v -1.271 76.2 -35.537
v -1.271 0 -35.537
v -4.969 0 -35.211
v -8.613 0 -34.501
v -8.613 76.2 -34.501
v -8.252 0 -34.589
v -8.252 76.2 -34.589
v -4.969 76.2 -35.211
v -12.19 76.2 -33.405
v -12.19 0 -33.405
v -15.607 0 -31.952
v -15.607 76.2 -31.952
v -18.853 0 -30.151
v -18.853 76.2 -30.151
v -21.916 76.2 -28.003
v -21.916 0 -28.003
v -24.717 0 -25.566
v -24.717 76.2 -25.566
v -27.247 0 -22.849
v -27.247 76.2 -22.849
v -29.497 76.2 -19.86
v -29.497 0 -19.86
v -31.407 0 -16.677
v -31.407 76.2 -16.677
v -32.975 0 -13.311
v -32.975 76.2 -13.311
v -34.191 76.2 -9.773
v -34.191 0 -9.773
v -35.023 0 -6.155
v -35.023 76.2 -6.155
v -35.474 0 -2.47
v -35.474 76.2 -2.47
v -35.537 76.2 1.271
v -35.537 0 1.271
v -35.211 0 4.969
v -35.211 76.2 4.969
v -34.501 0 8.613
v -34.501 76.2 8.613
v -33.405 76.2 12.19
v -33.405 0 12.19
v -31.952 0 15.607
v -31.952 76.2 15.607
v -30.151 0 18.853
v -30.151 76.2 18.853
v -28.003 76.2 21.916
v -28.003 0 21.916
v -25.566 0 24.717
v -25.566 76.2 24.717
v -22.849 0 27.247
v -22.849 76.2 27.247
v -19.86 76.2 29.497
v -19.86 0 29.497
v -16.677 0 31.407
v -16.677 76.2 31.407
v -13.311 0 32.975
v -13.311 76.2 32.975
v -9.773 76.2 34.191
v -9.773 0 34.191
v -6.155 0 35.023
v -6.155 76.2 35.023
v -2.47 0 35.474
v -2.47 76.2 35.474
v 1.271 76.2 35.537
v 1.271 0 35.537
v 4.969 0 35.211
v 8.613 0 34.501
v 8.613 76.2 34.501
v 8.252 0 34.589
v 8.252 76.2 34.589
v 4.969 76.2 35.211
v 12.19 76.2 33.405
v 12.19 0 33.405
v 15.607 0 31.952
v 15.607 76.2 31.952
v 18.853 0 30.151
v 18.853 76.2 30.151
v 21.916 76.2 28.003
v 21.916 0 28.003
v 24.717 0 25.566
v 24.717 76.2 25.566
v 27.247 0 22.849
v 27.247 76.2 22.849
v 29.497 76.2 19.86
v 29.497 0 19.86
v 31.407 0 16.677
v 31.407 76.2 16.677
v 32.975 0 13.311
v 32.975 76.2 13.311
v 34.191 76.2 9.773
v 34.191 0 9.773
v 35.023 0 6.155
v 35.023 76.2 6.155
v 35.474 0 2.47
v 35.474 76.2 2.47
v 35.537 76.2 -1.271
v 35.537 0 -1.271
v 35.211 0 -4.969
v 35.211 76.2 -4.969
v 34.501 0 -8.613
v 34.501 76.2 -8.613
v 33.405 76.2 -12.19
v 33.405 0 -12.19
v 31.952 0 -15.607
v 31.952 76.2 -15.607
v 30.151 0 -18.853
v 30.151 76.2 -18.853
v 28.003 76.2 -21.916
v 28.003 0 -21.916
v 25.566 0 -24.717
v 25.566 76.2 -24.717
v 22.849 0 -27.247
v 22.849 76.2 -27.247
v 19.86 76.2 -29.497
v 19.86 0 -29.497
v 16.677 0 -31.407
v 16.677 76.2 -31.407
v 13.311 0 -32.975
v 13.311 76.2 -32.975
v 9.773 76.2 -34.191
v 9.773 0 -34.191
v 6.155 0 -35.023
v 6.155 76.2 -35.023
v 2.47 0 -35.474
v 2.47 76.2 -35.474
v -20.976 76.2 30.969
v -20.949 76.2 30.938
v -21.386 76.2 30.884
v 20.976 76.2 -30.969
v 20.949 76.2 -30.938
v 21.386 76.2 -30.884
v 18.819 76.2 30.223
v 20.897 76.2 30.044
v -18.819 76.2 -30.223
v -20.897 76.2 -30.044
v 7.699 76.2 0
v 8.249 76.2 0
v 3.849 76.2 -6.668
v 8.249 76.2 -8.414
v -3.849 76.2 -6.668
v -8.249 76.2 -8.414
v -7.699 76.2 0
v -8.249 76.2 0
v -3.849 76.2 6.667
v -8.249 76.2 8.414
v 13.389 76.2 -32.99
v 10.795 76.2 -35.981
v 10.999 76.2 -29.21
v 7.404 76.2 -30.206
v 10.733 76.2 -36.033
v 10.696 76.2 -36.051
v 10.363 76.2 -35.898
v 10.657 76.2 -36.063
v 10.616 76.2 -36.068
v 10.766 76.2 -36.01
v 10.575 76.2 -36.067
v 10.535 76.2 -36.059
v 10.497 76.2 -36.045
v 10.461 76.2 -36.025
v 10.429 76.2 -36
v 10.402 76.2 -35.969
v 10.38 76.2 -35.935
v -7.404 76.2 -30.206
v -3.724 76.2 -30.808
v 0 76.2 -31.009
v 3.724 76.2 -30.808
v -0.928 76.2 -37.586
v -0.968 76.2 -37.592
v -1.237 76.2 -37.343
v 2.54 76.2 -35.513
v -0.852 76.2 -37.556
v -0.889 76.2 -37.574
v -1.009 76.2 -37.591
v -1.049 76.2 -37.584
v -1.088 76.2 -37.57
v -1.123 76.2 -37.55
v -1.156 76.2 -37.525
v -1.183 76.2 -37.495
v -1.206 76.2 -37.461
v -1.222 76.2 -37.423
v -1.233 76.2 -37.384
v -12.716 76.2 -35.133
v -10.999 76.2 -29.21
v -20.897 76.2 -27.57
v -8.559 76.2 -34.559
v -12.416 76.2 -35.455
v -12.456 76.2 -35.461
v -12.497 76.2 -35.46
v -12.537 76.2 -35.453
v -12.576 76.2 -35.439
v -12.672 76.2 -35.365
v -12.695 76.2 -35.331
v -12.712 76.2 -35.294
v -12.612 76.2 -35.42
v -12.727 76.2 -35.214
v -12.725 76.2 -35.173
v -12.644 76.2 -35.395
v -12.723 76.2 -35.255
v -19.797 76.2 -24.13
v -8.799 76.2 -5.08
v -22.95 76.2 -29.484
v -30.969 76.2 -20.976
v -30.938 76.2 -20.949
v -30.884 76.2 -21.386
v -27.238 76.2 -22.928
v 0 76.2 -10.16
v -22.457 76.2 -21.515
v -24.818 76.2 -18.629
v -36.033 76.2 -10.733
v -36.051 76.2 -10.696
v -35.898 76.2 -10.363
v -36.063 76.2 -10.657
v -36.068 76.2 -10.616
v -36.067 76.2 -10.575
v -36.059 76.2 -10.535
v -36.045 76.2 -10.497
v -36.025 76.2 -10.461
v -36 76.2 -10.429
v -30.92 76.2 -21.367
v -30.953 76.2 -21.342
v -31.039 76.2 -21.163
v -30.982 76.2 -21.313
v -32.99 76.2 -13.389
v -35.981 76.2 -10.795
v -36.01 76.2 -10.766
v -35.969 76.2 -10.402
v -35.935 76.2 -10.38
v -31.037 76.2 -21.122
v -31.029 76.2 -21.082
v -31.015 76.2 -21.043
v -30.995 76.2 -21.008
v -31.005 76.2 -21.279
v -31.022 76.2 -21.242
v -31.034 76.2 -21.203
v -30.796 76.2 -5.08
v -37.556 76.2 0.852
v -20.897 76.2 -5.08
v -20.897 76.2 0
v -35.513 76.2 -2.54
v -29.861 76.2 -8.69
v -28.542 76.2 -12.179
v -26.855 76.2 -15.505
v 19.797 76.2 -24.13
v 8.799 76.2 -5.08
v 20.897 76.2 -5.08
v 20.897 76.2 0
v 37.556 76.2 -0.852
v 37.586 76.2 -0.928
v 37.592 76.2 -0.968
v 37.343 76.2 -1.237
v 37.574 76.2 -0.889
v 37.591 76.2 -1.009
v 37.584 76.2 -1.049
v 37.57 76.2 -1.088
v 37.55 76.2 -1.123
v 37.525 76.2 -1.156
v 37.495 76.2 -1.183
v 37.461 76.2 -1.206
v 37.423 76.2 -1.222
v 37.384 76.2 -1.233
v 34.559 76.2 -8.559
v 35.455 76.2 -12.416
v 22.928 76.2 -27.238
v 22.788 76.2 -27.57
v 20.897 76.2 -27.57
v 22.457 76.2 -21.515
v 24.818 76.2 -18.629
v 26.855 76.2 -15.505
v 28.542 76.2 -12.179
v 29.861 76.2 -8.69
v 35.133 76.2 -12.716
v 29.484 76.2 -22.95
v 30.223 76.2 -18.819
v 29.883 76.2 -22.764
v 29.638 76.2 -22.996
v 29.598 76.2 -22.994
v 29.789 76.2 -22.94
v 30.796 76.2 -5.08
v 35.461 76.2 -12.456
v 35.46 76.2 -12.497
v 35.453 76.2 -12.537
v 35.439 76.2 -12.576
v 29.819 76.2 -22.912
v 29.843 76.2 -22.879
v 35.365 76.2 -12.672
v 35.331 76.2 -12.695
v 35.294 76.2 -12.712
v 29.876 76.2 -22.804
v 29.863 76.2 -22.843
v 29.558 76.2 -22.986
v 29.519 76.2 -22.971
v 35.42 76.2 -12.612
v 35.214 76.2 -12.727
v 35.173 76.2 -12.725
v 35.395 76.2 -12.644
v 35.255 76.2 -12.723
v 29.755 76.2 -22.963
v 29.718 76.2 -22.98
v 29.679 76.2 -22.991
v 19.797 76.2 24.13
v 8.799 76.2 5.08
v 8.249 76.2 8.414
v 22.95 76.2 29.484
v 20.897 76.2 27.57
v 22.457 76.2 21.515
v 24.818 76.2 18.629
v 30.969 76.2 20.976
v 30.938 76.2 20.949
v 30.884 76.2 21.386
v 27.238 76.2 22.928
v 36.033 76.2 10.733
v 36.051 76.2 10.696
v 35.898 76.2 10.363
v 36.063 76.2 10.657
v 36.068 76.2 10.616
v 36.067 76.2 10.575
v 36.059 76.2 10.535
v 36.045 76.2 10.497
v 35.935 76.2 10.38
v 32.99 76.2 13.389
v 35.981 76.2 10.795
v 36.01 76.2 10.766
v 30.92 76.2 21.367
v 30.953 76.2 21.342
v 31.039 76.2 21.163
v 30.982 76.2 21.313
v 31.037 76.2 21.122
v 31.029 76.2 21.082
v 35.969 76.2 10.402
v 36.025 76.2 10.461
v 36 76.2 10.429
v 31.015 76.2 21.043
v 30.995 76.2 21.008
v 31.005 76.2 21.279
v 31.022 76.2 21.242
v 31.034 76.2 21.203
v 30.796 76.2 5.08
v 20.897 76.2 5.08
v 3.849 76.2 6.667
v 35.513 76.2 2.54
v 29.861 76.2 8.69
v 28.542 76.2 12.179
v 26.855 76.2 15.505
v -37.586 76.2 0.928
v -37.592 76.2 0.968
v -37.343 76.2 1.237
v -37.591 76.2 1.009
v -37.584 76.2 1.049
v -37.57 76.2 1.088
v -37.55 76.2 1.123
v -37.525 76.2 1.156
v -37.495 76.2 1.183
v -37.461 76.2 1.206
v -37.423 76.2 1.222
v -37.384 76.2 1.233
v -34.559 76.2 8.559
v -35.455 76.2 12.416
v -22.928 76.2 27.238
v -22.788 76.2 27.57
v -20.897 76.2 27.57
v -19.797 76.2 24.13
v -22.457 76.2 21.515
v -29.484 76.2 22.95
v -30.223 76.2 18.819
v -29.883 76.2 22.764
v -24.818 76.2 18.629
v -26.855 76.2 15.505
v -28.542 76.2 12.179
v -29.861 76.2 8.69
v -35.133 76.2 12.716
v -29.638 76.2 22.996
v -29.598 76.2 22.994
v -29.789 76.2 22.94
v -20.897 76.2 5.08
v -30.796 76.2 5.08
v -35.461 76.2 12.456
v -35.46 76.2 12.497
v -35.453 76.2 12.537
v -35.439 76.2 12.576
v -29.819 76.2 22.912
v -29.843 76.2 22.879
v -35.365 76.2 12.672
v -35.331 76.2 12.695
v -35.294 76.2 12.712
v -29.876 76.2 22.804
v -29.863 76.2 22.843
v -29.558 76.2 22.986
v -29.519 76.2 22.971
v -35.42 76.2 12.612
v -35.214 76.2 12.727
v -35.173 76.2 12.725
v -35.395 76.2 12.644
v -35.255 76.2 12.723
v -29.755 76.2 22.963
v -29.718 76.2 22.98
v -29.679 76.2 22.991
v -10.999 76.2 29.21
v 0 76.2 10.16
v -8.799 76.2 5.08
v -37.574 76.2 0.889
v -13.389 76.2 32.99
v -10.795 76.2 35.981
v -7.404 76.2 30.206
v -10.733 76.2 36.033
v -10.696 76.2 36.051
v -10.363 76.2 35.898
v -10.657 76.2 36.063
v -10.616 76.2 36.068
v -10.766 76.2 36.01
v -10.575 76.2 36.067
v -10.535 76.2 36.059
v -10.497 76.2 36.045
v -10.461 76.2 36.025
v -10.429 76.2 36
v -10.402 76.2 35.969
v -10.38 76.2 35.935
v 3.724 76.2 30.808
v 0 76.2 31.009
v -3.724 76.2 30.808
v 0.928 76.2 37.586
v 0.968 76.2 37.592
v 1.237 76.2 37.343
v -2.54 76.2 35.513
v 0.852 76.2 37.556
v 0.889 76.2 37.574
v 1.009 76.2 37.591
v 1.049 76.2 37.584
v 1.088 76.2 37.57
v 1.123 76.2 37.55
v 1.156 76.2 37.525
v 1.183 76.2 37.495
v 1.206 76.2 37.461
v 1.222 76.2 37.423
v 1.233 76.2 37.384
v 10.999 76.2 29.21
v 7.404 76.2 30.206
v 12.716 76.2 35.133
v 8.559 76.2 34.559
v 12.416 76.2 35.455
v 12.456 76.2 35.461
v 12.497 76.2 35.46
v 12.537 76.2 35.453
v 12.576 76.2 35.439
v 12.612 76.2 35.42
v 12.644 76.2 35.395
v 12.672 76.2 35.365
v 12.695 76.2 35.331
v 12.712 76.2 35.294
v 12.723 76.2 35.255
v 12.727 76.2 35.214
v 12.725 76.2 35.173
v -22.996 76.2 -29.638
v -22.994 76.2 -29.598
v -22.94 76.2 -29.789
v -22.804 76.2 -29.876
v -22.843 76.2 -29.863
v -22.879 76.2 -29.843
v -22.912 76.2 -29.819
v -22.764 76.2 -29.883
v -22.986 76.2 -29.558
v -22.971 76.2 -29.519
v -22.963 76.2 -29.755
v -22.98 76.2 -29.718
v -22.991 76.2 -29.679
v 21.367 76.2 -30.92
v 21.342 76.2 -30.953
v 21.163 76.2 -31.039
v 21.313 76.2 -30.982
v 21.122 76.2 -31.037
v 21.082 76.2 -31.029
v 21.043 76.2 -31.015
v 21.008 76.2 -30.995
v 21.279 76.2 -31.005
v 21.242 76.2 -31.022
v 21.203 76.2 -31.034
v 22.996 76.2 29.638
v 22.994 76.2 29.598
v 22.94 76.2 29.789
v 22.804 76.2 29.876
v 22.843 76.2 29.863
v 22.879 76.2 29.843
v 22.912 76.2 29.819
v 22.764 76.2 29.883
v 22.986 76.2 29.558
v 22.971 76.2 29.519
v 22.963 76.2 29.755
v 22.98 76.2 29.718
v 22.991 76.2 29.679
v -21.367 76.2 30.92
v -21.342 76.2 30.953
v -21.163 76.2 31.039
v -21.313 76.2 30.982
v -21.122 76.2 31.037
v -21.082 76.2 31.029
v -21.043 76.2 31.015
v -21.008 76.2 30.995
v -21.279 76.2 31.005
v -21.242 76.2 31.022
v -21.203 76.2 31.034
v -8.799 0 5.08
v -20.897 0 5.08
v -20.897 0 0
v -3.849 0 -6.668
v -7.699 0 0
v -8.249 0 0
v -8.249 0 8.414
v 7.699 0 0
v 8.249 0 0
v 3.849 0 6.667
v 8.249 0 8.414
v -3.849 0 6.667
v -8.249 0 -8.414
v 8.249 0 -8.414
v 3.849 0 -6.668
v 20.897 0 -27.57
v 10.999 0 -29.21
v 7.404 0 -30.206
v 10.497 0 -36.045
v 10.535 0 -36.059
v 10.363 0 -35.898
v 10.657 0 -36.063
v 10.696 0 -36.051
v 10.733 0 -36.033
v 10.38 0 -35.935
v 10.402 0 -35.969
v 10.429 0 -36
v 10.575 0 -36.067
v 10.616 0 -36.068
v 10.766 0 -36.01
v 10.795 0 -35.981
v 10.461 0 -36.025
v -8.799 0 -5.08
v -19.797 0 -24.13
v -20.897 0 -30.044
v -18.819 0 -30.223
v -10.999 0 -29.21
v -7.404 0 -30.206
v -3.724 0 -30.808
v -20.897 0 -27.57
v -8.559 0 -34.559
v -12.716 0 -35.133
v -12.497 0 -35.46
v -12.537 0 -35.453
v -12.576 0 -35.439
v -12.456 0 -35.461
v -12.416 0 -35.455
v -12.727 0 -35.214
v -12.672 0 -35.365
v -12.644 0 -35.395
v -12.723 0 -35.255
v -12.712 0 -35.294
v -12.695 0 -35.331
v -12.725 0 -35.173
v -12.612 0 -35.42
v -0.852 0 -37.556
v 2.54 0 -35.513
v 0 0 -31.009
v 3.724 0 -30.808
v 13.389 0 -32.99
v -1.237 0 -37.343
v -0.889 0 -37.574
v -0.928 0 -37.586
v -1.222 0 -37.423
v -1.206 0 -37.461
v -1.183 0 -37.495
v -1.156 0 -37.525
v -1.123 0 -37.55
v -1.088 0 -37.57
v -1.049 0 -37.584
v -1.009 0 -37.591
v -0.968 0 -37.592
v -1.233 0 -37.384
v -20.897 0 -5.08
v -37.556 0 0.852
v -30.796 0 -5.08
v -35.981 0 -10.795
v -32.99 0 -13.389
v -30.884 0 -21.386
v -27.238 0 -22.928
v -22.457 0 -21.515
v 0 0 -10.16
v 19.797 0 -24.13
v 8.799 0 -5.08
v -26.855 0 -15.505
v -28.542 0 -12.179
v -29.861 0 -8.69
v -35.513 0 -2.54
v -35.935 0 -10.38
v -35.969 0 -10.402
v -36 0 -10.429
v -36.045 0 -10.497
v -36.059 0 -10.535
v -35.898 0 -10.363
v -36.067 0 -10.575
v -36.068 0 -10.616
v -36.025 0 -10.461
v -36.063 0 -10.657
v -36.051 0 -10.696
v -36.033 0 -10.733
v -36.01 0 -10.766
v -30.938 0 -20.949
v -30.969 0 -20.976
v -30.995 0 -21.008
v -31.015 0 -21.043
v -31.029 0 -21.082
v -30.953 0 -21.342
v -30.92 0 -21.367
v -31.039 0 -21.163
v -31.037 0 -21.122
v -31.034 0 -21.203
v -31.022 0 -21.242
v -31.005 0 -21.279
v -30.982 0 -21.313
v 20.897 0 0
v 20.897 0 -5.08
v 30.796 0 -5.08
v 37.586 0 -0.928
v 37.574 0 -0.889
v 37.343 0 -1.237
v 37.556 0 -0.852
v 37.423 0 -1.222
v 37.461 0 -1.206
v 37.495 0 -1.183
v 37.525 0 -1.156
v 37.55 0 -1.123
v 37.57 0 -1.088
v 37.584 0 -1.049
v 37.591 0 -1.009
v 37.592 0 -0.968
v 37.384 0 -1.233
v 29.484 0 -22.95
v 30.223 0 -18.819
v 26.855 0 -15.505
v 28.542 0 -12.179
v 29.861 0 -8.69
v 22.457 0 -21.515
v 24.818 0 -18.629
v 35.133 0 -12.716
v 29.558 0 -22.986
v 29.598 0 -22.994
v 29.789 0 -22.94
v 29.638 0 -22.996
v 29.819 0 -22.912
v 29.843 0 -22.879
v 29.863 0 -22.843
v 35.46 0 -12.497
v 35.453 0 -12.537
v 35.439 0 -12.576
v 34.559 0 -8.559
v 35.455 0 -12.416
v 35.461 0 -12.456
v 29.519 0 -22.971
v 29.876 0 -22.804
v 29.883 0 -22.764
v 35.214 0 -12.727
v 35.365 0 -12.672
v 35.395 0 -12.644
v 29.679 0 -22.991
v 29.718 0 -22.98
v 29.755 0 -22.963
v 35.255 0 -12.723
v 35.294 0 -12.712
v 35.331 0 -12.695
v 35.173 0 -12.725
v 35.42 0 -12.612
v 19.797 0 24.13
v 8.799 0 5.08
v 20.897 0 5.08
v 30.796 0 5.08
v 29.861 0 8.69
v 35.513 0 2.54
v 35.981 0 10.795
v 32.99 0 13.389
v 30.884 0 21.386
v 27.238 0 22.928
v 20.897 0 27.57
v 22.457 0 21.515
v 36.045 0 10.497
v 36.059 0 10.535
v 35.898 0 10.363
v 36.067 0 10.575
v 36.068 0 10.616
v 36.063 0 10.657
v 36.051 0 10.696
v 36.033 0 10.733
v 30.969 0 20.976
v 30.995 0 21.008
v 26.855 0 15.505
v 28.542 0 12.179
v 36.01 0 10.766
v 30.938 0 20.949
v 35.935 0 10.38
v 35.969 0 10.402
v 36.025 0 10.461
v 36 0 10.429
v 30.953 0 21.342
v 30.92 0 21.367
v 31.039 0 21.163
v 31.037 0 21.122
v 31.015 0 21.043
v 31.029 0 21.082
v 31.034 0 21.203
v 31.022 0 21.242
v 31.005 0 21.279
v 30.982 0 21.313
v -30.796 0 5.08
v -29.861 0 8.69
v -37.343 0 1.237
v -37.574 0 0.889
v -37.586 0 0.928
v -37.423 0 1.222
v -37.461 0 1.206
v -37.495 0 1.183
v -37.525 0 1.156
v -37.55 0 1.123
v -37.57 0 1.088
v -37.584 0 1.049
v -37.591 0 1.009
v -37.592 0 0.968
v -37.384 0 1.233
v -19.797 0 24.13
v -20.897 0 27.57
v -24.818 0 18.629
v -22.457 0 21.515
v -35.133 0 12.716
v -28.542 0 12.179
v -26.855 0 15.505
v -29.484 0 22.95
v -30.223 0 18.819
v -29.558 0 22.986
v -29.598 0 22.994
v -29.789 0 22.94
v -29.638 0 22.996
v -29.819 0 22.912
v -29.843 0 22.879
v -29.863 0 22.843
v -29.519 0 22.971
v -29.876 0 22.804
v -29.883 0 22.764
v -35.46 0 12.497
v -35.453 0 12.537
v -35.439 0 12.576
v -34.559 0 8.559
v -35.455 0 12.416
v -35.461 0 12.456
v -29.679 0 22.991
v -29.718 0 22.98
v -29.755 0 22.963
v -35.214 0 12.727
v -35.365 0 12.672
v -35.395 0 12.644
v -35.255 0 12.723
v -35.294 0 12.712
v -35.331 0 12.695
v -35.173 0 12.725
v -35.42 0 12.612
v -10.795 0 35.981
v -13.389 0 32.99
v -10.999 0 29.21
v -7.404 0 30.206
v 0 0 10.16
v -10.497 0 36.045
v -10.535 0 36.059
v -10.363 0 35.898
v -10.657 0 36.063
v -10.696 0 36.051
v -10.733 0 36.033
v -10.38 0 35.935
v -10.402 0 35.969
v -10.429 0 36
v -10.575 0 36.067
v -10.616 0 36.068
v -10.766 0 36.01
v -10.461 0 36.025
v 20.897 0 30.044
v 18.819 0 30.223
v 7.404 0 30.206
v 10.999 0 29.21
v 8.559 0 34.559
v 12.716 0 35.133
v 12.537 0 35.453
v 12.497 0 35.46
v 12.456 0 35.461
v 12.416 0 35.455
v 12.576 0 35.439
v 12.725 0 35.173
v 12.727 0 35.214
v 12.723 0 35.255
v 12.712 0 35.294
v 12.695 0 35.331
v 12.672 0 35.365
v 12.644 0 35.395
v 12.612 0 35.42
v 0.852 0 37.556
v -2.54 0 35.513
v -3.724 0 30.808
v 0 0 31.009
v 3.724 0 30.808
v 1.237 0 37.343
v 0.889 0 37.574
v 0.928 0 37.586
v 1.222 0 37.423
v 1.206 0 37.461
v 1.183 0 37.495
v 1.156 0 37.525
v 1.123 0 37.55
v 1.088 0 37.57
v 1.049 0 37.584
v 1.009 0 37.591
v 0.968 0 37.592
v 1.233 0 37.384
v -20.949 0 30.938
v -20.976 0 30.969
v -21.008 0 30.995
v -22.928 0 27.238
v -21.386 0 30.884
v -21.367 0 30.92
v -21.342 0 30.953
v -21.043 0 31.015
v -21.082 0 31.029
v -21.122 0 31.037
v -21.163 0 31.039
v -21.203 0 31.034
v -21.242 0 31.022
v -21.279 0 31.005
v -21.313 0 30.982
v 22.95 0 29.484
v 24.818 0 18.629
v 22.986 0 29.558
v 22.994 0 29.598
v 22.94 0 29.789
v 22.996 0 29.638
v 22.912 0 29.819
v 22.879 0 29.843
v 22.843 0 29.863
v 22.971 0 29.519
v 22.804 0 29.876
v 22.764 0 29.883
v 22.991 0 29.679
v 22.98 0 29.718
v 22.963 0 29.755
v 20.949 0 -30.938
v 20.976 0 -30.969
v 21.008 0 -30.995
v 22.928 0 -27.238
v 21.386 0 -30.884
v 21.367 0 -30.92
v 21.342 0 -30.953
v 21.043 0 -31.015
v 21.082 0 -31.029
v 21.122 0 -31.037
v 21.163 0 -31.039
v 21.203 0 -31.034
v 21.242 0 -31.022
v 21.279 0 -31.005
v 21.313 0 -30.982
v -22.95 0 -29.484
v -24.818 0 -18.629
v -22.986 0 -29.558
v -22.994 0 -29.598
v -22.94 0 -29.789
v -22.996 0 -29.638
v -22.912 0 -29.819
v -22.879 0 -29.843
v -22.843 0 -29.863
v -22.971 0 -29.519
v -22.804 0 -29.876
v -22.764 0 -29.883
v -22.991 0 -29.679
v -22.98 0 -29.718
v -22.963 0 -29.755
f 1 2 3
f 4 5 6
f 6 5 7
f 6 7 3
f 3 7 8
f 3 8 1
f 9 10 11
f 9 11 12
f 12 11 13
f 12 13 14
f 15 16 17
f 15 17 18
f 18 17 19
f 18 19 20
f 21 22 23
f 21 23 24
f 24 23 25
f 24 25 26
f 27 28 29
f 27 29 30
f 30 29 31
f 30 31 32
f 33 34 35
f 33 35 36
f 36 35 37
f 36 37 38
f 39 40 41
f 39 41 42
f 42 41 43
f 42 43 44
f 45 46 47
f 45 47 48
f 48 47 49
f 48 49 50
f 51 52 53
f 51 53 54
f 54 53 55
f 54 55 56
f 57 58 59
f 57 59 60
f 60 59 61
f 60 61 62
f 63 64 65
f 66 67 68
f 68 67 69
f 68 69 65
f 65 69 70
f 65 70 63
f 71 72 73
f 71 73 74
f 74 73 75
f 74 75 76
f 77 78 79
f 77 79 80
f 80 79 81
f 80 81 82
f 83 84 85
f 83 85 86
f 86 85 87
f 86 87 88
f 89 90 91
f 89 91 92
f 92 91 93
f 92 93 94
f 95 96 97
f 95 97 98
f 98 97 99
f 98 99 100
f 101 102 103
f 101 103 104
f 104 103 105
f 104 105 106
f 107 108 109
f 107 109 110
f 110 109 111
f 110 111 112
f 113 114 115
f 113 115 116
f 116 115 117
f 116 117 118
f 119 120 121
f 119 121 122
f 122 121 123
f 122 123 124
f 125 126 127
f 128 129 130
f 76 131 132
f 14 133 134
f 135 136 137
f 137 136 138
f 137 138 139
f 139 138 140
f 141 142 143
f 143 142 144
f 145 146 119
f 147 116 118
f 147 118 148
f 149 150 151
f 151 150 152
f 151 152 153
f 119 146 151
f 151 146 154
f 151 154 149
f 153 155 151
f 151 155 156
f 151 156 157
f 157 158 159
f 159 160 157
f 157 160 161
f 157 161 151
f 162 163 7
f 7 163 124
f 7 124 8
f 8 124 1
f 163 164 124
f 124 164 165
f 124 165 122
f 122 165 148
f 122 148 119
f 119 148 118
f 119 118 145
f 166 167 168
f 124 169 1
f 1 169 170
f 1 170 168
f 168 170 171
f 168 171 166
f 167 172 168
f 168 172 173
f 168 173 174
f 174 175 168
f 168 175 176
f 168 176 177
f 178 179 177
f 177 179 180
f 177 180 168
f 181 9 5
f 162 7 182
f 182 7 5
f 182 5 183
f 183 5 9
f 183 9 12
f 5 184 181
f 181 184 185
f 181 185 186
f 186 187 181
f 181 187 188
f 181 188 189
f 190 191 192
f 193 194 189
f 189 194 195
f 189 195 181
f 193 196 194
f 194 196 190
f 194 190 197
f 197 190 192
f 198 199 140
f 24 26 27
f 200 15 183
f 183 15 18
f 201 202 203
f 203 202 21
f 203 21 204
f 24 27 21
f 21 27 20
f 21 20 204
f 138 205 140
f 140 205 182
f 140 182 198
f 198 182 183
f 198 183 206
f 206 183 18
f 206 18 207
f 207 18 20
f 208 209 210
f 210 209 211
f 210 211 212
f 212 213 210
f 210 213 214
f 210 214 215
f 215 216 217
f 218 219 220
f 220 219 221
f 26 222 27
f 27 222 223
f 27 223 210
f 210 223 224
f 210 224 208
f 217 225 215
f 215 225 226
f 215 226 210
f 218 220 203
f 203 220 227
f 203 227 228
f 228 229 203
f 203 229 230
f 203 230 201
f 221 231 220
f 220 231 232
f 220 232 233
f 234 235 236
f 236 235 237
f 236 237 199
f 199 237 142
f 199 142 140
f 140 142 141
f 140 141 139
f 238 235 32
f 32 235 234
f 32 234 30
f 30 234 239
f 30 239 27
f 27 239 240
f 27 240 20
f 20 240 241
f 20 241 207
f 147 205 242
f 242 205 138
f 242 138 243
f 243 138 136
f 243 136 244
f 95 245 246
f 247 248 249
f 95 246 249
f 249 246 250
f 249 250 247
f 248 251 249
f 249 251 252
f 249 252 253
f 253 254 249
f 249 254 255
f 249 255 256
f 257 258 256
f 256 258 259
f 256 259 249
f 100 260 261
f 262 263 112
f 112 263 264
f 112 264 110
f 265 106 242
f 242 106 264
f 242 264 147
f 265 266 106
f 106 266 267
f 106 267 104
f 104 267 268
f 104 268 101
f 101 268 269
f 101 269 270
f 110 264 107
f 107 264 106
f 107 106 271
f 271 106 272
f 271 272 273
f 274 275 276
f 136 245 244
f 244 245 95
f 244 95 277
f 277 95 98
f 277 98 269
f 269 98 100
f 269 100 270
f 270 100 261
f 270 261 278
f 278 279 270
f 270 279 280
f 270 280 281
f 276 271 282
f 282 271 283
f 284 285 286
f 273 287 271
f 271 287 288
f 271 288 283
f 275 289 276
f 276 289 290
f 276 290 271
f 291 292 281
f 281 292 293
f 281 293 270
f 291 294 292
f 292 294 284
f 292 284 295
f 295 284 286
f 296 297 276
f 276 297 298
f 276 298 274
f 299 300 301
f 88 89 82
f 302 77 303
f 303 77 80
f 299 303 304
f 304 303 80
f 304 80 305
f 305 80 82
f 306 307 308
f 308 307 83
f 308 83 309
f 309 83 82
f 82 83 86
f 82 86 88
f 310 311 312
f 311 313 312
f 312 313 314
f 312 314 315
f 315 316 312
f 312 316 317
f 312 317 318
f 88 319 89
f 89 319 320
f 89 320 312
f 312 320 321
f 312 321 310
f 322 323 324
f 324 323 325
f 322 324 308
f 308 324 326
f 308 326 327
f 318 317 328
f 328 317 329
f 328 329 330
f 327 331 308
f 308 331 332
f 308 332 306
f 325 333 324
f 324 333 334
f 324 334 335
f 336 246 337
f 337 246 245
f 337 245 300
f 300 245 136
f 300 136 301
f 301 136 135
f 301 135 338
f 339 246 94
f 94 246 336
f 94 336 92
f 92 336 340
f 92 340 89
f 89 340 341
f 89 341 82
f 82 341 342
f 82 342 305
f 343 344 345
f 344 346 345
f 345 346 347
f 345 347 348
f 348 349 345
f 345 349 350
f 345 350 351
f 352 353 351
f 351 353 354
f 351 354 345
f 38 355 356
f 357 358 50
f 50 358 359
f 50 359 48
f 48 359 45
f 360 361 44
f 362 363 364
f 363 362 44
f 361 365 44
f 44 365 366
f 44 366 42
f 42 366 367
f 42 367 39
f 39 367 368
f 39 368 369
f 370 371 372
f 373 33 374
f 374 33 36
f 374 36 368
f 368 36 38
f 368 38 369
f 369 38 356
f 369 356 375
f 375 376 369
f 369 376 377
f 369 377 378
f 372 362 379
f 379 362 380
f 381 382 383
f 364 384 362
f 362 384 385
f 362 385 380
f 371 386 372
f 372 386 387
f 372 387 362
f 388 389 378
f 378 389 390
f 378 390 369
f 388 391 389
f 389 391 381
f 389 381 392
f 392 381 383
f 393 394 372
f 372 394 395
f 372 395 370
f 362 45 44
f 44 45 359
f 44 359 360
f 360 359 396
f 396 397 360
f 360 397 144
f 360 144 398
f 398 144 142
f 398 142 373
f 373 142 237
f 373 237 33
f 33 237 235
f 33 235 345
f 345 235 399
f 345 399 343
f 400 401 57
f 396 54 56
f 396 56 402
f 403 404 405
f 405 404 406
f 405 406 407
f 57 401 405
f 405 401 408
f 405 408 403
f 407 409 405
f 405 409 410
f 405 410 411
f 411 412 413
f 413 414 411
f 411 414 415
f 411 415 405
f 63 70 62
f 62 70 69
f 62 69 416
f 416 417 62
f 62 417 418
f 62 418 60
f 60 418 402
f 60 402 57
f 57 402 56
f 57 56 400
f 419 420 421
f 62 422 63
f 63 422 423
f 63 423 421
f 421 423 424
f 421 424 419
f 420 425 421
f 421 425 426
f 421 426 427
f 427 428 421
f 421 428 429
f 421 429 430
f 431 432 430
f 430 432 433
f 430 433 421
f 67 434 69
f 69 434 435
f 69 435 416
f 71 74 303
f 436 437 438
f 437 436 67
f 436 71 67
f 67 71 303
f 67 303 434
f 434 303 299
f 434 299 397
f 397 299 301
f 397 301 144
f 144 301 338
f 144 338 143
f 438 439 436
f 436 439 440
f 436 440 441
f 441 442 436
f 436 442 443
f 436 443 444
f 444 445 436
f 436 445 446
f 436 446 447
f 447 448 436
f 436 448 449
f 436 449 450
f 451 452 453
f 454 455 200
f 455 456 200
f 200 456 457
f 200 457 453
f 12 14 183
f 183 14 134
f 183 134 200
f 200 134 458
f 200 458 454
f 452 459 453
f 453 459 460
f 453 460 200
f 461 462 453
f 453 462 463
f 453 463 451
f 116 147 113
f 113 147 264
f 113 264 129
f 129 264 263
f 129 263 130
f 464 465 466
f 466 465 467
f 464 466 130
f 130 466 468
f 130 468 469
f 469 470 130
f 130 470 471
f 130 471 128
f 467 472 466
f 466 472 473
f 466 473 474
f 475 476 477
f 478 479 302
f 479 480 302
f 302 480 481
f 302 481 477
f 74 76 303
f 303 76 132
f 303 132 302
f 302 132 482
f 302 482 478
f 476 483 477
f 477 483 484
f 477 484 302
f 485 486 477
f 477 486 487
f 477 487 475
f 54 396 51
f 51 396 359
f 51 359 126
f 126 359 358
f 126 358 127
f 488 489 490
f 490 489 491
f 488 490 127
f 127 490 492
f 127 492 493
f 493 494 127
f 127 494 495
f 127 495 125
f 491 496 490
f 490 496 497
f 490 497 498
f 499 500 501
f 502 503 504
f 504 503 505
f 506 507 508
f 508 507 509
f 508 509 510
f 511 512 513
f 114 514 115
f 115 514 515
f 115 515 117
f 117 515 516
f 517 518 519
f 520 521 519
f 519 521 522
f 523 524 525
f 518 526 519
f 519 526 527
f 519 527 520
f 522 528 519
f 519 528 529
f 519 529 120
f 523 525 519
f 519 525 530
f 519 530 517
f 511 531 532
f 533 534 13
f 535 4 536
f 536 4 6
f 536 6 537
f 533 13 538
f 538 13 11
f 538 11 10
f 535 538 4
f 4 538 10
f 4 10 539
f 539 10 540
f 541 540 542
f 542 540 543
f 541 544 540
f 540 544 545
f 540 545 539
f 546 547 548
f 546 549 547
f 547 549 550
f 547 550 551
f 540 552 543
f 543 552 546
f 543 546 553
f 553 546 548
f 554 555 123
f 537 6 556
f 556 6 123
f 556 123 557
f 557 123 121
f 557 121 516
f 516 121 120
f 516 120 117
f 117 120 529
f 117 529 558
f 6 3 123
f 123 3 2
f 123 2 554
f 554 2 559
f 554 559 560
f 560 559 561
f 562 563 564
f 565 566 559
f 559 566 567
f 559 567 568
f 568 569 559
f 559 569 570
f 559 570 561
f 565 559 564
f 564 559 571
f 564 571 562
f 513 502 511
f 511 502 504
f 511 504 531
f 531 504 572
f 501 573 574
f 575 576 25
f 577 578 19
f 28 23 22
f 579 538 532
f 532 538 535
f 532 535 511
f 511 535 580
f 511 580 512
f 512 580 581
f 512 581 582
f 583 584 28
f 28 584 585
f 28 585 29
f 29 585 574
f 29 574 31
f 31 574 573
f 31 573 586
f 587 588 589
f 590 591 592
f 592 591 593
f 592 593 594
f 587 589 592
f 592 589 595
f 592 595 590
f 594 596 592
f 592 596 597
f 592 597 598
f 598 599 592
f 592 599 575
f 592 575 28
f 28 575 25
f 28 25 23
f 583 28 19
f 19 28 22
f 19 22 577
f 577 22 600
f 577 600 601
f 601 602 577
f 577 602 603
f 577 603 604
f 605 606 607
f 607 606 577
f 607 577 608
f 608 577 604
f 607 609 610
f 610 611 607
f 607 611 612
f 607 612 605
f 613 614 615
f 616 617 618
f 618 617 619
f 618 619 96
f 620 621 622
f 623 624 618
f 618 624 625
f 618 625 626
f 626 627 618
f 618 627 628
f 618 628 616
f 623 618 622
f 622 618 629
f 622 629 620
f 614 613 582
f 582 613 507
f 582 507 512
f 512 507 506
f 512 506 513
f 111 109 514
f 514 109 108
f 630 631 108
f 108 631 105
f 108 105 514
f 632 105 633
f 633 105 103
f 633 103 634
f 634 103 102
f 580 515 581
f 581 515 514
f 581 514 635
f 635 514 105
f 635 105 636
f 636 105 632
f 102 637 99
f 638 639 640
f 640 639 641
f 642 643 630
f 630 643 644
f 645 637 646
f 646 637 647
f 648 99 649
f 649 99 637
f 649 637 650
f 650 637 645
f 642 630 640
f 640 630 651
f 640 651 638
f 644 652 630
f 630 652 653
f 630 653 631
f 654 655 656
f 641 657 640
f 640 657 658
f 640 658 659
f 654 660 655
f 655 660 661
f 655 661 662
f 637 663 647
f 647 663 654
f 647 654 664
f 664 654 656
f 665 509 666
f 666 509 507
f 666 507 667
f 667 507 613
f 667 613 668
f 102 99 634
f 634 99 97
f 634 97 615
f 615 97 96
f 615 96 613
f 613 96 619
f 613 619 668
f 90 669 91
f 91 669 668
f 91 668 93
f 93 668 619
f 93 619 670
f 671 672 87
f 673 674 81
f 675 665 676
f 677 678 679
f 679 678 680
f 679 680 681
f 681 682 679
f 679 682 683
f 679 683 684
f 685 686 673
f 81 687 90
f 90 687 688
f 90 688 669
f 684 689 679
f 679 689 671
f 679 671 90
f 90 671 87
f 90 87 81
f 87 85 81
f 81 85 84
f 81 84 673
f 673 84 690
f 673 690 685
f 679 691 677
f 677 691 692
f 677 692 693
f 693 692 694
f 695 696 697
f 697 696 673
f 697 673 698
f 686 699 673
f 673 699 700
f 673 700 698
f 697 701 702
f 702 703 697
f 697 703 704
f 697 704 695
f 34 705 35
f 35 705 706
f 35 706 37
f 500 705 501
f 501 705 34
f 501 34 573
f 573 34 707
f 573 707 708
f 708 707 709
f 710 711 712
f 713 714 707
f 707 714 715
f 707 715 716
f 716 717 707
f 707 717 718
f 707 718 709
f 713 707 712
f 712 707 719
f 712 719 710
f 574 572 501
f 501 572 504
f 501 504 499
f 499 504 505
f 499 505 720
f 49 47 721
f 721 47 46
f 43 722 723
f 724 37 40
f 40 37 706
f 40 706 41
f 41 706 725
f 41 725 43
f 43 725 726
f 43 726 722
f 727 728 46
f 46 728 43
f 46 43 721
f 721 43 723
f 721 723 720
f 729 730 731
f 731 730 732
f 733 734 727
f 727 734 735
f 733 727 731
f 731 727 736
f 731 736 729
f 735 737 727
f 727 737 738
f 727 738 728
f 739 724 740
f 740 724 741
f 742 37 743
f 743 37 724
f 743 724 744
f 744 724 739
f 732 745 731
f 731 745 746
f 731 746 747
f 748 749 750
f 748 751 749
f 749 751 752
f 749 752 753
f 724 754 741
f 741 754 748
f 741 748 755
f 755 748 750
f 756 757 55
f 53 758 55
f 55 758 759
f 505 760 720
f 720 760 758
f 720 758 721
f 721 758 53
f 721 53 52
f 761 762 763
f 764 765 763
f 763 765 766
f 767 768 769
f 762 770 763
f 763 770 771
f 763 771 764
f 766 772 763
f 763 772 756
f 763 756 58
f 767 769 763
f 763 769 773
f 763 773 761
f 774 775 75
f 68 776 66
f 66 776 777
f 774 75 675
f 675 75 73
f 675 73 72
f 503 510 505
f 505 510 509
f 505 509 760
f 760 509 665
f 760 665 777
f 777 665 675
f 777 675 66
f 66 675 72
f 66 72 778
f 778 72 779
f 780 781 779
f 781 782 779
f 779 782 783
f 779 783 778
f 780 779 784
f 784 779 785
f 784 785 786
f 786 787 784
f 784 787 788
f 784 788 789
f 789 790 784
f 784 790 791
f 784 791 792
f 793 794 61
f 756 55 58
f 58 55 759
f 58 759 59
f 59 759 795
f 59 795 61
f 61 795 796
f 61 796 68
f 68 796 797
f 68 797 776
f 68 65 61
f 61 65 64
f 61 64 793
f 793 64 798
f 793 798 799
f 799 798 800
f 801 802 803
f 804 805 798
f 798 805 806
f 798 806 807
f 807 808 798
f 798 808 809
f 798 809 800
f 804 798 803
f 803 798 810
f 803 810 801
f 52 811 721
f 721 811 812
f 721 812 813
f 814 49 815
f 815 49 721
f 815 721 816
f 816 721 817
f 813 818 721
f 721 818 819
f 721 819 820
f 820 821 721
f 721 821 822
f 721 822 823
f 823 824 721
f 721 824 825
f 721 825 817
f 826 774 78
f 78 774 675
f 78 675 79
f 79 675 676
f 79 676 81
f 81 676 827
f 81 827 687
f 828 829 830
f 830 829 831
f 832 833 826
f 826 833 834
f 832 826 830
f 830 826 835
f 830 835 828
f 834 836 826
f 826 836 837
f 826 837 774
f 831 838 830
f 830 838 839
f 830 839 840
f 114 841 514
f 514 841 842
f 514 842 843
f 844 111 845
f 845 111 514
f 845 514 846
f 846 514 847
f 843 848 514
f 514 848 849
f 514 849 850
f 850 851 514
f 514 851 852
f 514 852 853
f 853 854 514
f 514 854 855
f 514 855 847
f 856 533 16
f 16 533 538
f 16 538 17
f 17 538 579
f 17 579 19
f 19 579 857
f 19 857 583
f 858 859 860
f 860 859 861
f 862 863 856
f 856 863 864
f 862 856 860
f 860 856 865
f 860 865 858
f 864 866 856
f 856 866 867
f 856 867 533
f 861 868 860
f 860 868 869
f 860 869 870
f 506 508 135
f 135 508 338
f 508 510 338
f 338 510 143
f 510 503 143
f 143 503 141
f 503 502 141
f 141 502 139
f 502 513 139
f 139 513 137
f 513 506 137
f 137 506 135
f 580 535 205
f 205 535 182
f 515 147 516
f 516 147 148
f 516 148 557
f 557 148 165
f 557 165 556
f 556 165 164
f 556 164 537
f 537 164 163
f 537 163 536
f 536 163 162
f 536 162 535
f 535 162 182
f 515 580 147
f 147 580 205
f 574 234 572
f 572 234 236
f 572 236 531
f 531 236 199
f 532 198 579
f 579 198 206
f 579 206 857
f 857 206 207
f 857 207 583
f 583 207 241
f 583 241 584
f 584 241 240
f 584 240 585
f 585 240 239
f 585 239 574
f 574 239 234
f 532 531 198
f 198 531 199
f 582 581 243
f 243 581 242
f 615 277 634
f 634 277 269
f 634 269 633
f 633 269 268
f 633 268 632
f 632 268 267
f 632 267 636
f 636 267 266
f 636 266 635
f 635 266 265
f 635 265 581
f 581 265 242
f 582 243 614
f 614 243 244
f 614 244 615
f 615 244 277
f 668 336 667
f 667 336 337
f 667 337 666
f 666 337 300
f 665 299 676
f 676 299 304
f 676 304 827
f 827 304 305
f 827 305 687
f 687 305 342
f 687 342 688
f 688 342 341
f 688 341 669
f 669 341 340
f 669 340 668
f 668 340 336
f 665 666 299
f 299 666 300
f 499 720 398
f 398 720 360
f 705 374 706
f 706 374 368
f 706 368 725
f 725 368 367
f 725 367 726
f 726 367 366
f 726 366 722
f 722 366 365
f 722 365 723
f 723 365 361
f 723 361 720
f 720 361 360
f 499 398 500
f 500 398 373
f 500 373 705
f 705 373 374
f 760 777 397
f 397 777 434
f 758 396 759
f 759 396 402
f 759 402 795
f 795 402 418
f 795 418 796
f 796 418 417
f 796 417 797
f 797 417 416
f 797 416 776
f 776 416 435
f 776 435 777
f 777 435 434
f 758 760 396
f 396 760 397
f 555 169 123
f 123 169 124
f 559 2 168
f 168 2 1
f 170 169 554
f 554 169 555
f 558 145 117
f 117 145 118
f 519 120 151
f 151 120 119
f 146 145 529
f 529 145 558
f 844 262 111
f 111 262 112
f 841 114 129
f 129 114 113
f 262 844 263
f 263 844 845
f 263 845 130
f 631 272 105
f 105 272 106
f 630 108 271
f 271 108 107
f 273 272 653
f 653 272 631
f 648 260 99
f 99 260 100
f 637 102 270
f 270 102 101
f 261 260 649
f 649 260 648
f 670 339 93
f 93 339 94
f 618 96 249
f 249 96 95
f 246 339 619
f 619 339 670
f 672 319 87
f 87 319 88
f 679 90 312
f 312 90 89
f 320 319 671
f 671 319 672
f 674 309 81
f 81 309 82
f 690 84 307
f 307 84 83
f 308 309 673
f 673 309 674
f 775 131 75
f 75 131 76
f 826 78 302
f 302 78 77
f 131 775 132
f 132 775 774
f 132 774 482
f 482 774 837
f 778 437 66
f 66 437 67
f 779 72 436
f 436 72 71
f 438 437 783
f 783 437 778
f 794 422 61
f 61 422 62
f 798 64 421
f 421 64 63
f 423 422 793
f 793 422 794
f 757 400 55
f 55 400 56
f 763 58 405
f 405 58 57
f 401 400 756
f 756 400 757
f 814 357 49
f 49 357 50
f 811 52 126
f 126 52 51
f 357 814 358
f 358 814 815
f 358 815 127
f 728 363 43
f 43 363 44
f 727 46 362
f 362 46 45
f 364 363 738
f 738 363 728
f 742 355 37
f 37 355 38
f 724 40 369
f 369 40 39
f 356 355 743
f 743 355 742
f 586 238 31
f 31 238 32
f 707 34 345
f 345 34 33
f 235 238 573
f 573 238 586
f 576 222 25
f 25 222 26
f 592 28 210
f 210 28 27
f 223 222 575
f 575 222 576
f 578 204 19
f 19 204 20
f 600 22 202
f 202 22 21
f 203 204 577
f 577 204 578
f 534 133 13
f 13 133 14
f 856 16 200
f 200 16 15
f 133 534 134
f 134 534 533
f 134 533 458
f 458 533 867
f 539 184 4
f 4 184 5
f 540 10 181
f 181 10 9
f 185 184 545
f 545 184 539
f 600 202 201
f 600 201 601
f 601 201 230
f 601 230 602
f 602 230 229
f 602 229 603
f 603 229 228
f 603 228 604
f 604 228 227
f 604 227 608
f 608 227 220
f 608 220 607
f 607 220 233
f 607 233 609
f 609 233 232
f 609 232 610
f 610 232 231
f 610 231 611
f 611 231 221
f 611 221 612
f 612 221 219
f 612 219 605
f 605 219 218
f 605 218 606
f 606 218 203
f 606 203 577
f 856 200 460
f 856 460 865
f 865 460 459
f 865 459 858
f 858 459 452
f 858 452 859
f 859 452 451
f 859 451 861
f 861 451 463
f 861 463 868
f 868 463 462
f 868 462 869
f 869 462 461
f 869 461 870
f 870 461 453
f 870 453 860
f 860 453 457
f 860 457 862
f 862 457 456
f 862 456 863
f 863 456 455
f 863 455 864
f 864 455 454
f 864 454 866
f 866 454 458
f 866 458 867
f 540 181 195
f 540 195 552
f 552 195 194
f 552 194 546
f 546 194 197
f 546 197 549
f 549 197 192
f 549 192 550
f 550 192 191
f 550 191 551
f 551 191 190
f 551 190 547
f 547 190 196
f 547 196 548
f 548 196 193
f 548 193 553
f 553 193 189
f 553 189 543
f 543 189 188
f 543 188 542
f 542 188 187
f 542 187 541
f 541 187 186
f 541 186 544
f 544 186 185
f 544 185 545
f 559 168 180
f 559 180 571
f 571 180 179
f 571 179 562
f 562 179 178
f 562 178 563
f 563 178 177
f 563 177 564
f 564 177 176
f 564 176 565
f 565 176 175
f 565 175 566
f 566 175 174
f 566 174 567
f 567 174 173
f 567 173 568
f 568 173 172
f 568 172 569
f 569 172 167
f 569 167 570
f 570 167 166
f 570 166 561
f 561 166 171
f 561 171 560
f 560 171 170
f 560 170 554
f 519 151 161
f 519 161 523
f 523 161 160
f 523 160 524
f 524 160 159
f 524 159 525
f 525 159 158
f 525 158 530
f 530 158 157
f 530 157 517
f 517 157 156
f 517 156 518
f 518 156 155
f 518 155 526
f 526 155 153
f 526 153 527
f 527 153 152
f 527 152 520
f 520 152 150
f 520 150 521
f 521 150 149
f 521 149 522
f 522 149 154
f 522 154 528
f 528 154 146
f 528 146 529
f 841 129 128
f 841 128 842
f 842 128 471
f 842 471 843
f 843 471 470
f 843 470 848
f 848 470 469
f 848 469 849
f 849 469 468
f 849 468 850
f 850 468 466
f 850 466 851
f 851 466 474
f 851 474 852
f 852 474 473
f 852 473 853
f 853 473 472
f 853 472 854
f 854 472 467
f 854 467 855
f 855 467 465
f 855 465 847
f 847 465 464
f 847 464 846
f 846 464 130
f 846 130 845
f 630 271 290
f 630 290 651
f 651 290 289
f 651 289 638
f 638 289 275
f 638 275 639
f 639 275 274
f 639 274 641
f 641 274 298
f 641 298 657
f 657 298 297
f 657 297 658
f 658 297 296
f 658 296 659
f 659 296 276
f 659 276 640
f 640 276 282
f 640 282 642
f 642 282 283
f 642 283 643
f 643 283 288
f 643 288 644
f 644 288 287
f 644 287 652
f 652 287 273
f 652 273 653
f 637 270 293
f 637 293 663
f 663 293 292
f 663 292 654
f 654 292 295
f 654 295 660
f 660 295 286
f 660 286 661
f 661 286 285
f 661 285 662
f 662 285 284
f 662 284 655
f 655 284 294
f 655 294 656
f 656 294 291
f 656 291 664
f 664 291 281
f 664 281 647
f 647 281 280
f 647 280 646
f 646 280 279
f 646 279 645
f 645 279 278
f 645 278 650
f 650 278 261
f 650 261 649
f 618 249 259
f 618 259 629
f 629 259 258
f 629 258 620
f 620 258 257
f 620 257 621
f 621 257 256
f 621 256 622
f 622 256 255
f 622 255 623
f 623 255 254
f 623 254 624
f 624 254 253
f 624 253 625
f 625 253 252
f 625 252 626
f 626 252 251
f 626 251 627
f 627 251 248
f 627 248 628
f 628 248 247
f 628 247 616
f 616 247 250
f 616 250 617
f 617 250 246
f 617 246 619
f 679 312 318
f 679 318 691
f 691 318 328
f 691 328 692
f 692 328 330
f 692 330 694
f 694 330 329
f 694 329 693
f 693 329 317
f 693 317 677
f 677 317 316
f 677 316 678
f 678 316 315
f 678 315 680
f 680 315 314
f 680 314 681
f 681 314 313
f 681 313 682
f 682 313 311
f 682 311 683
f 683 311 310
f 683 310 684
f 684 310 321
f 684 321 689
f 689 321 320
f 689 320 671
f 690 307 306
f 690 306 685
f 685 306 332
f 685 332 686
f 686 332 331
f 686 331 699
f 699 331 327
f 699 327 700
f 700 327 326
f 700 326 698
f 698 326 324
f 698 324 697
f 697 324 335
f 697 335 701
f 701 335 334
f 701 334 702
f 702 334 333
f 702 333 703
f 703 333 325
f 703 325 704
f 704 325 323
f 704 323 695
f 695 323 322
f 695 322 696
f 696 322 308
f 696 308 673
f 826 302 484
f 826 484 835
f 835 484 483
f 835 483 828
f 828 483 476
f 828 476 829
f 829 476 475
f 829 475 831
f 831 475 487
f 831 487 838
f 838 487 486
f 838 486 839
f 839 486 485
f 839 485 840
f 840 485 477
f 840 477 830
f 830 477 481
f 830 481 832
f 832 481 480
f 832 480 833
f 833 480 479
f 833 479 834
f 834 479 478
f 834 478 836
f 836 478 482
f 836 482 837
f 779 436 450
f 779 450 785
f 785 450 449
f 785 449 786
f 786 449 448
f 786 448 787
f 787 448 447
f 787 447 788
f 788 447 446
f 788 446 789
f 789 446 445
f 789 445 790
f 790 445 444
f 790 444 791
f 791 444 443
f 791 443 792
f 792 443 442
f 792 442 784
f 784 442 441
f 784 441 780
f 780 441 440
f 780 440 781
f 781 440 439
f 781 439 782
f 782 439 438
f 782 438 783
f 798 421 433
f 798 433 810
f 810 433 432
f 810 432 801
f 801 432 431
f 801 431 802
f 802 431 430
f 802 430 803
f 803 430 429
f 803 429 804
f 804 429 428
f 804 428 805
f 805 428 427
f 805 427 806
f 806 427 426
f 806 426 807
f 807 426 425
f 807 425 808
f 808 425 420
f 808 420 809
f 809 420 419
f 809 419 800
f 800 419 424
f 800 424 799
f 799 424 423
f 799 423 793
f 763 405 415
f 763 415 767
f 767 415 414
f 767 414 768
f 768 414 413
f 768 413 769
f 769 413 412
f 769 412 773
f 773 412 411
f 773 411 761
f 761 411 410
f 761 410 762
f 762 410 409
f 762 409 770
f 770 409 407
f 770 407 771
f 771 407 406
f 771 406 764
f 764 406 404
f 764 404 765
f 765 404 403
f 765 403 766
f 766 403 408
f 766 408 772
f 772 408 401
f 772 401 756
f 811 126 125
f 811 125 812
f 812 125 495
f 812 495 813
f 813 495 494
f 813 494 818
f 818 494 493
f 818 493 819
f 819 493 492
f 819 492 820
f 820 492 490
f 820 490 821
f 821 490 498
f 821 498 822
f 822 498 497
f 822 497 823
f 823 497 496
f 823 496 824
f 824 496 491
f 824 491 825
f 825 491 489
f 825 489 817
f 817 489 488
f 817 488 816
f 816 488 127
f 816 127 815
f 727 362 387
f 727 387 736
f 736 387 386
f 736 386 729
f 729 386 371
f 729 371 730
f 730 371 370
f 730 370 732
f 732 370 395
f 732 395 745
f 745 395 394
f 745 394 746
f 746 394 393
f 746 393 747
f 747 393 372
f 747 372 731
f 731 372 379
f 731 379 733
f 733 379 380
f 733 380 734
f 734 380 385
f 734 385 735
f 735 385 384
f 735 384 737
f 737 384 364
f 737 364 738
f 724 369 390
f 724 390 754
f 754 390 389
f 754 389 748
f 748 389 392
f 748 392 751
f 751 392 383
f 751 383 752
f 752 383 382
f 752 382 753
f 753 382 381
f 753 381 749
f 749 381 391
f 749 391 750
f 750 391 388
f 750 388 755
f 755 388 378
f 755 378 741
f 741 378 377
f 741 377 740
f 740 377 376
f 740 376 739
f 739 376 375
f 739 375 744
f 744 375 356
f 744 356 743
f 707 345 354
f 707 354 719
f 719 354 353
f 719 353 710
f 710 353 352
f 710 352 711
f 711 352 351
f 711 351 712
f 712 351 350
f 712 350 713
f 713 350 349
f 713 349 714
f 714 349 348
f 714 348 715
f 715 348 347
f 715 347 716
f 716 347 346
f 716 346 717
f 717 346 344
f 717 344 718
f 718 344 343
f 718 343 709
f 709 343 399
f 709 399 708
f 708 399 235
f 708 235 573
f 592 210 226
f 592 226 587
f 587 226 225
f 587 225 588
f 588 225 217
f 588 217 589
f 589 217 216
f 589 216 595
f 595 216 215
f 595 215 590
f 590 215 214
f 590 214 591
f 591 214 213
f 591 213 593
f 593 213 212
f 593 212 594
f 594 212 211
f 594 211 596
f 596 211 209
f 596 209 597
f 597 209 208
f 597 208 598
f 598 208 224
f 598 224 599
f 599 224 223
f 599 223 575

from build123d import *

# Parameters (mm, degrees)
SKETCH1_R           = 35.56
BOSS_EXTRUDE1_DEPTH = 76.2
CUT_EXTRUDE1_DEPTH  = 76.2
CUT_EXTRUDE2_DEPTH  = 76.2
BOSS_EXTRUDE2_DEPTH = 76.2
FILLET1_R           = 0.254


with BuildPart() as part:
    # Sketch1 → Boss-Extrude1 (new body)
    with BuildSketch(Plane(origin=(0, 0, 0), x_dir=(1, 0, 0), z_dir=(0, 1, 0))):
        with Locations(Location((0, 0, 0), (0, 0, 90))):
            Circle(SKETCH1_R)
    extrude(amount=BOSS_EXTRUDE1_DEPTH)

    # Sketch2 → Cut-Extrude1 (cut)
    with BuildSketch(Plane(origin=(0, 76.2, 0), x_dir=(1, 0, 0), z_dir=(0, 1, 0))):
        Polygon((7.69896584, 0), (3.84948292, 6.6675), (-3.84948292, 6.6675), (-7.69896584, 0), (-3.84948292, -6.6675), (3.84948292, -6.6675), align=None)
    extrude(amount=-CUT_EXTRUDE1_DEPTH, mode=Mode.SUBTRACT)

    # Sketch3 → Cut-Extrude2 (cut)
    with BuildSketch(Plane(origin=(0, 76.2, 0), x_dir=(1, 0, 0), z_dir=(0, 1, 0))):
        with BuildLine():
            Line((8.798818102, 5.08), (30.795863359, 5.08))
            ThreePointArc((30.795863359, 5.08), (26.854956532, 15.504716383), (19.797340731, 24.13))
            Line((19.797340731, 24.13), (8.798818102, 5.08))
        make_face()
        with BuildLine():
            Line((0, 10.16), (10.998522628, 29.21))
            ThreePointArc((10.998522628, 29.21), (0, 31.009432765), (-10.998522628, 29.21))
            Line((-10.998522628, 29.21), (0, 10.16))
        make_face()
        with BuildLine():
            Line((8.798818102, -5.08), (19.797340731, -24.13))
            ThreePointArc((19.797340731, -24.13), (26.854956532, -15.504716383), (30.795863359, -5.08))
            Line((30.795863359, -5.08), (8.798818102, -5.08))
        make_face()
        with BuildLine():
            Line((0, -10.16), (-10.998522628, -29.21))
            ThreePointArc((-10.998522628, -29.21), (0, -31.009432765), (10.998522628, -29.21))
            Line((10.998522628, -29.21), (0, -10.16))
        make_face()
        with BuildLine():
            Line((-8.798818102, -5.08), (-30.795863359, -5.08))
            ThreePointArc((-30.795863359, -5.08), (-26.854956532, -15.504716383), (-19.797340731, -24.13))
            Line((-19.797340731, -24.13), (-8.798818102, -5.08))
        make_face()
        with BuildLine():
            Line((-8.798818102, 5.08), (-19.797340731, 24.13))
            ThreePointArc((-19.797340731, 24.13), (-26.854956532, 15.504716383), (-30.795863359, 5.08))
            Line((-30.795863359, 5.08), (-8.798818102, 5.08))
        make_face()
    extrude(amount=-CUT_EXTRUDE2_DEPTH, mode=Mode.SUBTRACT)

    # Sketch4 → Boss-Extrude2 (add)
    with BuildSketch(Plane(origin=(0, 76.2, 0), x_dir=(1, 0, 0), z_dir=(0, 1, 0))):
        Polygon((10.506917468, 36.313470126), (9.069726639, 32.155431824), (13.389288853, 32.989807207), align=None)
        Polygon((2.539559344, 35.512688914), (-1.22880707, 37.782978449), (-1.310752274, 33.384332637), align=None)
        Polygon((21.214151718, 31.289346337), (18.562397516, 27.778933305), (22.92838148, 27.237653318), align=None)
        Polygon((29.84479699, 23.202403322), (26.238051593, 20.683239247), (30.223084377, 18.819288146), align=None)
        Polygon((35.554025592, 12.84424741), (31.345342368, 11.562925622), (34.559341198, 8.558759928), align=None)
        Polygon((37.782978449, 1.22880707), (33.384332637, 1.310752274), (35.512688914, -2.539559344), align=None)
        Polygon((36.313470126, -10.506917468), (32.155431824, -9.069726639), (32.989807207, -13.389288853), align=None)
        Polygon((31.289346337, -21.214151718), (27.778933305, -18.562397516), (27.237653318, -22.92838148), align=None)
        Polygon((23.202403322, -29.84479699), (20.683239247, -26.238051593), (18.819288146, -30.223084377), align=None)
        Polygon((12.84424741, -35.554025592), (11.562925622, -31.345342368), (8.558759928, -34.559341198), align=None)
        Polygon((1.22880707, -37.782978449), (1.310752274, -33.384332637), (-2.539559344, -35.512688914), align=None)
        Polygon((-10.506917468, -36.313470126), (-9.069726639, -32.155431824), (-13.389288853, -32.989807207), align=None)
        Polygon((-21.214151718, -31.289346337), (-18.562397516, -27.778933305), (-22.92838148, -27.237653318), align=None)
        Polygon((-29.84479699, -23.202403322), (-26.238051593, -20.683239247), (-30.223084377, -18.819288146), align=None)
        Polygon((-35.554025592, -12.84424741), (-31.345342368, -11.562925622), (-34.559341198, -8.558759928), align=None)
        Polygon((-37.782978449, -1.22880707), (-33.384332637, -1.310752274), (-35.512688914, 2.539559344), align=None)
        Polygon((-36.313470126, 10.506917468), (-32.155431824, 9.069726639), (-32.989807207, 13.389288853), align=None)
        Polygon((-31.289346337, 21.214151718), (-27.778933305, 18.562397516), (-27.237653318, 22.92838148), align=None)
        Polygon((-23.202403322, 29.84479699), (-20.683239247, 26.238051593), (-18.819288146, 30.223084377), align=None)
        Polygon((-12.84424741, 35.554025592), (-11.562925622, 31.345342368), (-8.558759928, 34.559341198), align=None)
    extrude(amount=-BOSS_EXTRUDE2_DEPTH)

    # Fillet1
    fillet1_edges = [part.edges().sort_by_distance(p)[0] for p in [
        (-1.22880707, 38.1, -37.782978449),
        (10.506917468, 38.1, -36.313470126),
        (21.214151718, 38.1, -31.289346337),
        (29.84479699, 38.1, -23.202403322),
        (35.554025592, 38.1, -12.84424741),
        (37.782978449, 38.1, -1.22880707),
        (36.313470126, 38.1, 10.506917468),
        (31.289346337, 38.1, 21.214151718),
        (23.202403322, 38.1, 29.84479699),
        (12.84424741, 38.1, 35.554025592),
        (1.22880707, 38.1, 37.782978449),
        (-10.506917468, 38.1, 36.313470126),
        (-21.214151718, 38.1, 31.289346337),
        (-29.84479699, 38.1, 23.202403322),
        (-35.554025592, 38.1, 12.84424741),
        (-37.782978449, 38.1, 1.22880707),
        (-36.313470126, 38.1, -10.506917468),
        (-31.289346337, 38.1, -21.214151718),
        (-23.202403322, 38.1, -29.84479699),
        (-12.84424741, 38.1, -35.554025592),
    ]]
    fillet(fillet1_edges, radius=FILLET1_R)


solid = part.part
